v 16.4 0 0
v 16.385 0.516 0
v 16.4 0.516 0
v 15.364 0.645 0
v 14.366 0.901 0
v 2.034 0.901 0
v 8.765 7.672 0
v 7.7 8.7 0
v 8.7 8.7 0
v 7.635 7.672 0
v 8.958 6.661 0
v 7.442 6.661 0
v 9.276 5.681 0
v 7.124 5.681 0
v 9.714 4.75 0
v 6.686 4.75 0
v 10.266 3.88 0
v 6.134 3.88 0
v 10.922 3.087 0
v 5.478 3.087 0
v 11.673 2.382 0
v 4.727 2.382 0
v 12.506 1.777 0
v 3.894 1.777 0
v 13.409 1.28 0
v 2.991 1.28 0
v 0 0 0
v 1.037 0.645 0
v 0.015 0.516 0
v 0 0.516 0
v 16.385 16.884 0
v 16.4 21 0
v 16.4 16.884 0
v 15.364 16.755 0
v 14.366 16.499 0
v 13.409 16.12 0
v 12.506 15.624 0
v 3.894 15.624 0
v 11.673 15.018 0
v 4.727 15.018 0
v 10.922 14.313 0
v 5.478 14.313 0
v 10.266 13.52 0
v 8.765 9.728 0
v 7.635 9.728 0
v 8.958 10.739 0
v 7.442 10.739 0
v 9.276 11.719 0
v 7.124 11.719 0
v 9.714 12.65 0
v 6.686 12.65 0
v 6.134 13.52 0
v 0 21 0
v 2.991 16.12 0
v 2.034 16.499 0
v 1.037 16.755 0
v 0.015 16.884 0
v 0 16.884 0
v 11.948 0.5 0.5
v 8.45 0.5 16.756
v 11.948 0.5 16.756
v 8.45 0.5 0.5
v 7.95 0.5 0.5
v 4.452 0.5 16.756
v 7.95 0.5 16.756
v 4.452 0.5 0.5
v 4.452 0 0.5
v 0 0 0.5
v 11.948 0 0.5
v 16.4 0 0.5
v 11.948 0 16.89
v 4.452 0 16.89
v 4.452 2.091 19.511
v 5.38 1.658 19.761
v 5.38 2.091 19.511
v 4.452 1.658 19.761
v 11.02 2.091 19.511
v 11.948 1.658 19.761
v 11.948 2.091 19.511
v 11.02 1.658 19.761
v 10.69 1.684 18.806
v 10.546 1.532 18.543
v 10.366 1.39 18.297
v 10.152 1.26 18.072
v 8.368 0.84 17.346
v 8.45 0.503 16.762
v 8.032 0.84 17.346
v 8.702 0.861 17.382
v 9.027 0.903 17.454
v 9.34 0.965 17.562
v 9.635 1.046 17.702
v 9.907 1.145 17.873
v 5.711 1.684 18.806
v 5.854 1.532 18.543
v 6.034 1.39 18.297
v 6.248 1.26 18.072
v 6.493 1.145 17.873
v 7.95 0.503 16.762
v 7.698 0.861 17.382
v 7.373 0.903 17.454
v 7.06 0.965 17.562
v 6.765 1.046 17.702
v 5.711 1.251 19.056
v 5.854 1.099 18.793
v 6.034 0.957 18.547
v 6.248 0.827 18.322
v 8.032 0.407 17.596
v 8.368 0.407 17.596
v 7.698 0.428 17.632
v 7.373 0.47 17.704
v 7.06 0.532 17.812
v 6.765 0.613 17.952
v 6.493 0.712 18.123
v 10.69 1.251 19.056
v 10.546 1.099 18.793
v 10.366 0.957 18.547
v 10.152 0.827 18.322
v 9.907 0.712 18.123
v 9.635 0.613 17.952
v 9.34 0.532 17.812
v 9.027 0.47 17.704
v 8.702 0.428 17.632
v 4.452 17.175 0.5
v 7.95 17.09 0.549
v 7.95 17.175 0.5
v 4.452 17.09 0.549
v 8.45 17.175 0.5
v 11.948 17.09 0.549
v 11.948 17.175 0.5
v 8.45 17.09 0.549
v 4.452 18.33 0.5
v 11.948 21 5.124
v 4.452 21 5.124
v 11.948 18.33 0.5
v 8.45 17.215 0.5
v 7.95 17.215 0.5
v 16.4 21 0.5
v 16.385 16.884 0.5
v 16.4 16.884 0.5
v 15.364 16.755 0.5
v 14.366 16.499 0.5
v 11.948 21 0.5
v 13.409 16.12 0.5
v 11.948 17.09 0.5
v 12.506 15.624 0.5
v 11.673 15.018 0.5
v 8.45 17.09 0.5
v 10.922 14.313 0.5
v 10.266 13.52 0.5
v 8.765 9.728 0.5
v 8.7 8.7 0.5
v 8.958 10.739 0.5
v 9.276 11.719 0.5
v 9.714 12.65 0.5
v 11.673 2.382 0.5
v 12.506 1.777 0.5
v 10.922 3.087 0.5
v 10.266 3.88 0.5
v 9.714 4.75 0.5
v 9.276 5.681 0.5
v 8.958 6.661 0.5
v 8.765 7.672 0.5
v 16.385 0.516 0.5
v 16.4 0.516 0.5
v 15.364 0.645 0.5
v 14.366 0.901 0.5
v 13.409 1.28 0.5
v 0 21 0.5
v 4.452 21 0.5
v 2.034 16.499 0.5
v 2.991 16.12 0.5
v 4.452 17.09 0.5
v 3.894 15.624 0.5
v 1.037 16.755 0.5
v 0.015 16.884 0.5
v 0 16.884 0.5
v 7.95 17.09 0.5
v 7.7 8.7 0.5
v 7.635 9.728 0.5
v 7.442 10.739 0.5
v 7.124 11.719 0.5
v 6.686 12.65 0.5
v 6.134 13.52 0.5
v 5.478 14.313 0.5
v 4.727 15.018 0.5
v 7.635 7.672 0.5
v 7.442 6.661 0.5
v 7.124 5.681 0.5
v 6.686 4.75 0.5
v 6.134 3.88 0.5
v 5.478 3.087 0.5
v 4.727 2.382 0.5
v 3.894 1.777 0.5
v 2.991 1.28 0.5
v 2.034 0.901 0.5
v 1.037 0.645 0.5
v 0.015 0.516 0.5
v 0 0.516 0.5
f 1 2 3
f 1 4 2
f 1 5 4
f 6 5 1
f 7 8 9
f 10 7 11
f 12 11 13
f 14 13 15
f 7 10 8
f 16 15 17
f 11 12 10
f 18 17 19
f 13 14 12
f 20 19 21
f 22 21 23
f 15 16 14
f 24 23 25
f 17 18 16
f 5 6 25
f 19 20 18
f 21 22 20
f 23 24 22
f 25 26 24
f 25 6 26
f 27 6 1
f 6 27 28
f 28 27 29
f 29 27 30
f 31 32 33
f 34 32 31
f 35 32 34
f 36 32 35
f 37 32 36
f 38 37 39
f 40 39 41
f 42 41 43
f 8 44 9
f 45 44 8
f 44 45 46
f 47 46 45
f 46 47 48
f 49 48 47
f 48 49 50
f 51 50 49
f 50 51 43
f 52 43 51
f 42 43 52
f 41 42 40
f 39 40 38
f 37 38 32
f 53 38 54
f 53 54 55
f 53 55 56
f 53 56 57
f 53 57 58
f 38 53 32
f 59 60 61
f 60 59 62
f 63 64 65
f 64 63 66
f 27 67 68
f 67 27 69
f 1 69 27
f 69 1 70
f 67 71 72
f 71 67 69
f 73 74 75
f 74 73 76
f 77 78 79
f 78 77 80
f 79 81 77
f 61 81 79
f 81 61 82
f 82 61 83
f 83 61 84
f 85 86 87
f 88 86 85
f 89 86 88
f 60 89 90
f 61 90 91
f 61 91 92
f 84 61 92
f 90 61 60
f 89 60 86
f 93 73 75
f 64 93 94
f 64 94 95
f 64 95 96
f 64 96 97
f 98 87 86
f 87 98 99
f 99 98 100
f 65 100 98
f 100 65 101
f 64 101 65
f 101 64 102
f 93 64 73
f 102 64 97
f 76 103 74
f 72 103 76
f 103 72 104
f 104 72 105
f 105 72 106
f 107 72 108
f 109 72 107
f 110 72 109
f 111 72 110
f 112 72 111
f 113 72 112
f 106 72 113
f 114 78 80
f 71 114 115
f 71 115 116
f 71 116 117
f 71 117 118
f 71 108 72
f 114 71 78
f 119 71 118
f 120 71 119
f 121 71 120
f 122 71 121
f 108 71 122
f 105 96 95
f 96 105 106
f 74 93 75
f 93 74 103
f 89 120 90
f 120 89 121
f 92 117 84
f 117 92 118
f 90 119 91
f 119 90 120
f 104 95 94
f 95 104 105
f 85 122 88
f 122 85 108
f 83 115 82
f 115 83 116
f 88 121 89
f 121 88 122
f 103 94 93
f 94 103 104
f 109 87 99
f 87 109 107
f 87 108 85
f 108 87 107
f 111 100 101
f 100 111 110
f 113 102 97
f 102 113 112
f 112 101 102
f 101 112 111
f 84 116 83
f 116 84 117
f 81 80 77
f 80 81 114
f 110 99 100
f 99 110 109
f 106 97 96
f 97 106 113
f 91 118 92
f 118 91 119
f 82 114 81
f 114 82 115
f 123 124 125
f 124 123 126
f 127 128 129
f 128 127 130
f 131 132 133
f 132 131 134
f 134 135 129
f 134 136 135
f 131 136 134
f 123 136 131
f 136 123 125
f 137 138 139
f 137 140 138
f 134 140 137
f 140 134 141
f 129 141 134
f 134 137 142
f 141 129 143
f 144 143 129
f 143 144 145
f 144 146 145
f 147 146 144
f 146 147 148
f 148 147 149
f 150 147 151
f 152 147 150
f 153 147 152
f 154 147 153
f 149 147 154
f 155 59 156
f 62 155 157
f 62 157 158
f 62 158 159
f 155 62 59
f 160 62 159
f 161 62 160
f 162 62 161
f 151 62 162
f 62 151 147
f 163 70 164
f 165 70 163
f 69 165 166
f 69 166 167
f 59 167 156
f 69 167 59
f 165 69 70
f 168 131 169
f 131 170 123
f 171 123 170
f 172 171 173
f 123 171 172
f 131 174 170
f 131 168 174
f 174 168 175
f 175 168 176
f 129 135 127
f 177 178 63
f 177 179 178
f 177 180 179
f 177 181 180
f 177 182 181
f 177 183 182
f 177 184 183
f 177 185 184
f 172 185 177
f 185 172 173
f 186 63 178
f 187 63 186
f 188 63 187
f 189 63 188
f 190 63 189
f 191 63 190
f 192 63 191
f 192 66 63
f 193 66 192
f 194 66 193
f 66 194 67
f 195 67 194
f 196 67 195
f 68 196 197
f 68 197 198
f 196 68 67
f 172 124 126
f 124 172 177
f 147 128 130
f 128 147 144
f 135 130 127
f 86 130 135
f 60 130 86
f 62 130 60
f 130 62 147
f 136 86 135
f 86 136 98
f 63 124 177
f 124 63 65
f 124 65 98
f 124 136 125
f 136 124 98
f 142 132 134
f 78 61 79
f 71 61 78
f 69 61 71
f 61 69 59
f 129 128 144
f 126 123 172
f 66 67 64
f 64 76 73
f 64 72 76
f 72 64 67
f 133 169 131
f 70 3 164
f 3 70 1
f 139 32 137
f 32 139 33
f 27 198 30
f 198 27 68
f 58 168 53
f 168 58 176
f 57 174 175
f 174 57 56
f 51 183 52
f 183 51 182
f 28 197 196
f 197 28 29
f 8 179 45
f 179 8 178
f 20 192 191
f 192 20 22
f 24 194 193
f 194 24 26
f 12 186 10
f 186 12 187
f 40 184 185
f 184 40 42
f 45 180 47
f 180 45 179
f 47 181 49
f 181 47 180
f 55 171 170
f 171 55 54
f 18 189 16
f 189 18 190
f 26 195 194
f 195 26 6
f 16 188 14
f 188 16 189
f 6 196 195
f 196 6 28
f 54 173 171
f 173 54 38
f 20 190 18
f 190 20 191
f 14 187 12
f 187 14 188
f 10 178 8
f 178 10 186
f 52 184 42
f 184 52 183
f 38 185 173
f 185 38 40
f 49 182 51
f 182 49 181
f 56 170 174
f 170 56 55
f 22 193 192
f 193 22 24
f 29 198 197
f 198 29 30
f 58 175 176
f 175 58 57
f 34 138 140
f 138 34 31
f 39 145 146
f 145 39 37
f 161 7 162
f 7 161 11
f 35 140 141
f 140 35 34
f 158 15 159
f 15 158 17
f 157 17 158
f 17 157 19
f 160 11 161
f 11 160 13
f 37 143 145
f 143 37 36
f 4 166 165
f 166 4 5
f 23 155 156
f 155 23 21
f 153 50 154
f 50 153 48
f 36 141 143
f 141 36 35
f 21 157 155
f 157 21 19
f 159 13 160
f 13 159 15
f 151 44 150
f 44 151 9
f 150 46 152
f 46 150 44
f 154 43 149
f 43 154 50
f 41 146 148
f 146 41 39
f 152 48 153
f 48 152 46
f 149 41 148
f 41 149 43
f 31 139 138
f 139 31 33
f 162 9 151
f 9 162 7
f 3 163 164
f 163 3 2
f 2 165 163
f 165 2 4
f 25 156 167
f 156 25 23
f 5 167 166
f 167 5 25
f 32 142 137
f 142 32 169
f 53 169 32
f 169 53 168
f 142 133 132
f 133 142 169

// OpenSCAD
$fn = 50;

difference() {
union() {
    difference() {
        union() {
            difference() {
                union() {
                    cube([16.4, 0.5, 16.89]);
                    translate([0, 0, 16.89]) {
                        rotate([-30, 0, 0]) {
                            cube([16.4, 0.5, 3.315]);
                        };
                    };
                };
                hull() {
                    translate([8.2, 4.22, 18.48]) {
                        rotate([60, 0, 0]) {
                            cylinder(h=5.5, r2=2.6775, r1=2.6775);
                        };
                    };
                    translate([8.2, 5.495, 21.03]) {
                        rotate([60, 0, 0]) {
                            cylinder(h=5.5, r2=3.7485, r1=3.7485);
                        };
                    };
                };
            };
            difference() {
                translate([0, 17.09, 0.5]) {
                    cube([16.4, 8.2, 13.12]);
                };
                union() {
                    translate([-0.25, 10.94, 4.1]) {
                        rotate([-30, 0, 0]) {
                            cube([16.9, 8.2, 19.68]);
                        };
                    };
                    translate([0, 17.59, 8.445]) {
                        cube([16.9, 8.2, 19.68]);
                    };
                };
            };
            translate([8.45, 0, 0]) {
                rotate([0, -90, 0]) {
                    linear_extrude(height=0.5) {
                        polygon([[0.5, 0.5], [16.765, 0.5], [0.5, 17.215]]);
                    };
                };
            };
        };
        translate([11.9485, -1, -1]) {
            cube([8.2, 27.29, 21.1]);
        };
        translate([-3.7485, -1, -1]) {
            cube([8.2, 27.29, 21.1]);
        };
    };
    difference() {
        cube([16.4, 25.29, 0.5]);
        translate([-0.5, 8.7, -1]) {
            cylinder(h=17.39, r2=8.2, r1=8.2);
        };
        translate([16.9, 8.7, -1]) {
            cylinder(h=17.39, r2=8.2, r1=8.2);
        };
    };
};
translate([-2, 21, -1]) {
    cube([20, 10, 16.0]);
};
};
